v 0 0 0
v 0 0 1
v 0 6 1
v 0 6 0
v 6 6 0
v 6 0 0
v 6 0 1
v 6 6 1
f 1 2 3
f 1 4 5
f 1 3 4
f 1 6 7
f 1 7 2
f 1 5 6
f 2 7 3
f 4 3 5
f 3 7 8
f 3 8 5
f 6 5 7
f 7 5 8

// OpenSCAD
/* Warning, this is a very basic generator with a lot of approximation 
input data : [TFBGA, GQX, 6x6x1.0mm, 84, , A, C04-00250A]
generated by com.zoubworld.electronics.cad.model3d.Basic
Date : Sun Feb 15 10:50:48 CET 2026
*/

//body
color("black")
translate([0,0,0])
cube([6.0,6.0,1.0], center=false);
